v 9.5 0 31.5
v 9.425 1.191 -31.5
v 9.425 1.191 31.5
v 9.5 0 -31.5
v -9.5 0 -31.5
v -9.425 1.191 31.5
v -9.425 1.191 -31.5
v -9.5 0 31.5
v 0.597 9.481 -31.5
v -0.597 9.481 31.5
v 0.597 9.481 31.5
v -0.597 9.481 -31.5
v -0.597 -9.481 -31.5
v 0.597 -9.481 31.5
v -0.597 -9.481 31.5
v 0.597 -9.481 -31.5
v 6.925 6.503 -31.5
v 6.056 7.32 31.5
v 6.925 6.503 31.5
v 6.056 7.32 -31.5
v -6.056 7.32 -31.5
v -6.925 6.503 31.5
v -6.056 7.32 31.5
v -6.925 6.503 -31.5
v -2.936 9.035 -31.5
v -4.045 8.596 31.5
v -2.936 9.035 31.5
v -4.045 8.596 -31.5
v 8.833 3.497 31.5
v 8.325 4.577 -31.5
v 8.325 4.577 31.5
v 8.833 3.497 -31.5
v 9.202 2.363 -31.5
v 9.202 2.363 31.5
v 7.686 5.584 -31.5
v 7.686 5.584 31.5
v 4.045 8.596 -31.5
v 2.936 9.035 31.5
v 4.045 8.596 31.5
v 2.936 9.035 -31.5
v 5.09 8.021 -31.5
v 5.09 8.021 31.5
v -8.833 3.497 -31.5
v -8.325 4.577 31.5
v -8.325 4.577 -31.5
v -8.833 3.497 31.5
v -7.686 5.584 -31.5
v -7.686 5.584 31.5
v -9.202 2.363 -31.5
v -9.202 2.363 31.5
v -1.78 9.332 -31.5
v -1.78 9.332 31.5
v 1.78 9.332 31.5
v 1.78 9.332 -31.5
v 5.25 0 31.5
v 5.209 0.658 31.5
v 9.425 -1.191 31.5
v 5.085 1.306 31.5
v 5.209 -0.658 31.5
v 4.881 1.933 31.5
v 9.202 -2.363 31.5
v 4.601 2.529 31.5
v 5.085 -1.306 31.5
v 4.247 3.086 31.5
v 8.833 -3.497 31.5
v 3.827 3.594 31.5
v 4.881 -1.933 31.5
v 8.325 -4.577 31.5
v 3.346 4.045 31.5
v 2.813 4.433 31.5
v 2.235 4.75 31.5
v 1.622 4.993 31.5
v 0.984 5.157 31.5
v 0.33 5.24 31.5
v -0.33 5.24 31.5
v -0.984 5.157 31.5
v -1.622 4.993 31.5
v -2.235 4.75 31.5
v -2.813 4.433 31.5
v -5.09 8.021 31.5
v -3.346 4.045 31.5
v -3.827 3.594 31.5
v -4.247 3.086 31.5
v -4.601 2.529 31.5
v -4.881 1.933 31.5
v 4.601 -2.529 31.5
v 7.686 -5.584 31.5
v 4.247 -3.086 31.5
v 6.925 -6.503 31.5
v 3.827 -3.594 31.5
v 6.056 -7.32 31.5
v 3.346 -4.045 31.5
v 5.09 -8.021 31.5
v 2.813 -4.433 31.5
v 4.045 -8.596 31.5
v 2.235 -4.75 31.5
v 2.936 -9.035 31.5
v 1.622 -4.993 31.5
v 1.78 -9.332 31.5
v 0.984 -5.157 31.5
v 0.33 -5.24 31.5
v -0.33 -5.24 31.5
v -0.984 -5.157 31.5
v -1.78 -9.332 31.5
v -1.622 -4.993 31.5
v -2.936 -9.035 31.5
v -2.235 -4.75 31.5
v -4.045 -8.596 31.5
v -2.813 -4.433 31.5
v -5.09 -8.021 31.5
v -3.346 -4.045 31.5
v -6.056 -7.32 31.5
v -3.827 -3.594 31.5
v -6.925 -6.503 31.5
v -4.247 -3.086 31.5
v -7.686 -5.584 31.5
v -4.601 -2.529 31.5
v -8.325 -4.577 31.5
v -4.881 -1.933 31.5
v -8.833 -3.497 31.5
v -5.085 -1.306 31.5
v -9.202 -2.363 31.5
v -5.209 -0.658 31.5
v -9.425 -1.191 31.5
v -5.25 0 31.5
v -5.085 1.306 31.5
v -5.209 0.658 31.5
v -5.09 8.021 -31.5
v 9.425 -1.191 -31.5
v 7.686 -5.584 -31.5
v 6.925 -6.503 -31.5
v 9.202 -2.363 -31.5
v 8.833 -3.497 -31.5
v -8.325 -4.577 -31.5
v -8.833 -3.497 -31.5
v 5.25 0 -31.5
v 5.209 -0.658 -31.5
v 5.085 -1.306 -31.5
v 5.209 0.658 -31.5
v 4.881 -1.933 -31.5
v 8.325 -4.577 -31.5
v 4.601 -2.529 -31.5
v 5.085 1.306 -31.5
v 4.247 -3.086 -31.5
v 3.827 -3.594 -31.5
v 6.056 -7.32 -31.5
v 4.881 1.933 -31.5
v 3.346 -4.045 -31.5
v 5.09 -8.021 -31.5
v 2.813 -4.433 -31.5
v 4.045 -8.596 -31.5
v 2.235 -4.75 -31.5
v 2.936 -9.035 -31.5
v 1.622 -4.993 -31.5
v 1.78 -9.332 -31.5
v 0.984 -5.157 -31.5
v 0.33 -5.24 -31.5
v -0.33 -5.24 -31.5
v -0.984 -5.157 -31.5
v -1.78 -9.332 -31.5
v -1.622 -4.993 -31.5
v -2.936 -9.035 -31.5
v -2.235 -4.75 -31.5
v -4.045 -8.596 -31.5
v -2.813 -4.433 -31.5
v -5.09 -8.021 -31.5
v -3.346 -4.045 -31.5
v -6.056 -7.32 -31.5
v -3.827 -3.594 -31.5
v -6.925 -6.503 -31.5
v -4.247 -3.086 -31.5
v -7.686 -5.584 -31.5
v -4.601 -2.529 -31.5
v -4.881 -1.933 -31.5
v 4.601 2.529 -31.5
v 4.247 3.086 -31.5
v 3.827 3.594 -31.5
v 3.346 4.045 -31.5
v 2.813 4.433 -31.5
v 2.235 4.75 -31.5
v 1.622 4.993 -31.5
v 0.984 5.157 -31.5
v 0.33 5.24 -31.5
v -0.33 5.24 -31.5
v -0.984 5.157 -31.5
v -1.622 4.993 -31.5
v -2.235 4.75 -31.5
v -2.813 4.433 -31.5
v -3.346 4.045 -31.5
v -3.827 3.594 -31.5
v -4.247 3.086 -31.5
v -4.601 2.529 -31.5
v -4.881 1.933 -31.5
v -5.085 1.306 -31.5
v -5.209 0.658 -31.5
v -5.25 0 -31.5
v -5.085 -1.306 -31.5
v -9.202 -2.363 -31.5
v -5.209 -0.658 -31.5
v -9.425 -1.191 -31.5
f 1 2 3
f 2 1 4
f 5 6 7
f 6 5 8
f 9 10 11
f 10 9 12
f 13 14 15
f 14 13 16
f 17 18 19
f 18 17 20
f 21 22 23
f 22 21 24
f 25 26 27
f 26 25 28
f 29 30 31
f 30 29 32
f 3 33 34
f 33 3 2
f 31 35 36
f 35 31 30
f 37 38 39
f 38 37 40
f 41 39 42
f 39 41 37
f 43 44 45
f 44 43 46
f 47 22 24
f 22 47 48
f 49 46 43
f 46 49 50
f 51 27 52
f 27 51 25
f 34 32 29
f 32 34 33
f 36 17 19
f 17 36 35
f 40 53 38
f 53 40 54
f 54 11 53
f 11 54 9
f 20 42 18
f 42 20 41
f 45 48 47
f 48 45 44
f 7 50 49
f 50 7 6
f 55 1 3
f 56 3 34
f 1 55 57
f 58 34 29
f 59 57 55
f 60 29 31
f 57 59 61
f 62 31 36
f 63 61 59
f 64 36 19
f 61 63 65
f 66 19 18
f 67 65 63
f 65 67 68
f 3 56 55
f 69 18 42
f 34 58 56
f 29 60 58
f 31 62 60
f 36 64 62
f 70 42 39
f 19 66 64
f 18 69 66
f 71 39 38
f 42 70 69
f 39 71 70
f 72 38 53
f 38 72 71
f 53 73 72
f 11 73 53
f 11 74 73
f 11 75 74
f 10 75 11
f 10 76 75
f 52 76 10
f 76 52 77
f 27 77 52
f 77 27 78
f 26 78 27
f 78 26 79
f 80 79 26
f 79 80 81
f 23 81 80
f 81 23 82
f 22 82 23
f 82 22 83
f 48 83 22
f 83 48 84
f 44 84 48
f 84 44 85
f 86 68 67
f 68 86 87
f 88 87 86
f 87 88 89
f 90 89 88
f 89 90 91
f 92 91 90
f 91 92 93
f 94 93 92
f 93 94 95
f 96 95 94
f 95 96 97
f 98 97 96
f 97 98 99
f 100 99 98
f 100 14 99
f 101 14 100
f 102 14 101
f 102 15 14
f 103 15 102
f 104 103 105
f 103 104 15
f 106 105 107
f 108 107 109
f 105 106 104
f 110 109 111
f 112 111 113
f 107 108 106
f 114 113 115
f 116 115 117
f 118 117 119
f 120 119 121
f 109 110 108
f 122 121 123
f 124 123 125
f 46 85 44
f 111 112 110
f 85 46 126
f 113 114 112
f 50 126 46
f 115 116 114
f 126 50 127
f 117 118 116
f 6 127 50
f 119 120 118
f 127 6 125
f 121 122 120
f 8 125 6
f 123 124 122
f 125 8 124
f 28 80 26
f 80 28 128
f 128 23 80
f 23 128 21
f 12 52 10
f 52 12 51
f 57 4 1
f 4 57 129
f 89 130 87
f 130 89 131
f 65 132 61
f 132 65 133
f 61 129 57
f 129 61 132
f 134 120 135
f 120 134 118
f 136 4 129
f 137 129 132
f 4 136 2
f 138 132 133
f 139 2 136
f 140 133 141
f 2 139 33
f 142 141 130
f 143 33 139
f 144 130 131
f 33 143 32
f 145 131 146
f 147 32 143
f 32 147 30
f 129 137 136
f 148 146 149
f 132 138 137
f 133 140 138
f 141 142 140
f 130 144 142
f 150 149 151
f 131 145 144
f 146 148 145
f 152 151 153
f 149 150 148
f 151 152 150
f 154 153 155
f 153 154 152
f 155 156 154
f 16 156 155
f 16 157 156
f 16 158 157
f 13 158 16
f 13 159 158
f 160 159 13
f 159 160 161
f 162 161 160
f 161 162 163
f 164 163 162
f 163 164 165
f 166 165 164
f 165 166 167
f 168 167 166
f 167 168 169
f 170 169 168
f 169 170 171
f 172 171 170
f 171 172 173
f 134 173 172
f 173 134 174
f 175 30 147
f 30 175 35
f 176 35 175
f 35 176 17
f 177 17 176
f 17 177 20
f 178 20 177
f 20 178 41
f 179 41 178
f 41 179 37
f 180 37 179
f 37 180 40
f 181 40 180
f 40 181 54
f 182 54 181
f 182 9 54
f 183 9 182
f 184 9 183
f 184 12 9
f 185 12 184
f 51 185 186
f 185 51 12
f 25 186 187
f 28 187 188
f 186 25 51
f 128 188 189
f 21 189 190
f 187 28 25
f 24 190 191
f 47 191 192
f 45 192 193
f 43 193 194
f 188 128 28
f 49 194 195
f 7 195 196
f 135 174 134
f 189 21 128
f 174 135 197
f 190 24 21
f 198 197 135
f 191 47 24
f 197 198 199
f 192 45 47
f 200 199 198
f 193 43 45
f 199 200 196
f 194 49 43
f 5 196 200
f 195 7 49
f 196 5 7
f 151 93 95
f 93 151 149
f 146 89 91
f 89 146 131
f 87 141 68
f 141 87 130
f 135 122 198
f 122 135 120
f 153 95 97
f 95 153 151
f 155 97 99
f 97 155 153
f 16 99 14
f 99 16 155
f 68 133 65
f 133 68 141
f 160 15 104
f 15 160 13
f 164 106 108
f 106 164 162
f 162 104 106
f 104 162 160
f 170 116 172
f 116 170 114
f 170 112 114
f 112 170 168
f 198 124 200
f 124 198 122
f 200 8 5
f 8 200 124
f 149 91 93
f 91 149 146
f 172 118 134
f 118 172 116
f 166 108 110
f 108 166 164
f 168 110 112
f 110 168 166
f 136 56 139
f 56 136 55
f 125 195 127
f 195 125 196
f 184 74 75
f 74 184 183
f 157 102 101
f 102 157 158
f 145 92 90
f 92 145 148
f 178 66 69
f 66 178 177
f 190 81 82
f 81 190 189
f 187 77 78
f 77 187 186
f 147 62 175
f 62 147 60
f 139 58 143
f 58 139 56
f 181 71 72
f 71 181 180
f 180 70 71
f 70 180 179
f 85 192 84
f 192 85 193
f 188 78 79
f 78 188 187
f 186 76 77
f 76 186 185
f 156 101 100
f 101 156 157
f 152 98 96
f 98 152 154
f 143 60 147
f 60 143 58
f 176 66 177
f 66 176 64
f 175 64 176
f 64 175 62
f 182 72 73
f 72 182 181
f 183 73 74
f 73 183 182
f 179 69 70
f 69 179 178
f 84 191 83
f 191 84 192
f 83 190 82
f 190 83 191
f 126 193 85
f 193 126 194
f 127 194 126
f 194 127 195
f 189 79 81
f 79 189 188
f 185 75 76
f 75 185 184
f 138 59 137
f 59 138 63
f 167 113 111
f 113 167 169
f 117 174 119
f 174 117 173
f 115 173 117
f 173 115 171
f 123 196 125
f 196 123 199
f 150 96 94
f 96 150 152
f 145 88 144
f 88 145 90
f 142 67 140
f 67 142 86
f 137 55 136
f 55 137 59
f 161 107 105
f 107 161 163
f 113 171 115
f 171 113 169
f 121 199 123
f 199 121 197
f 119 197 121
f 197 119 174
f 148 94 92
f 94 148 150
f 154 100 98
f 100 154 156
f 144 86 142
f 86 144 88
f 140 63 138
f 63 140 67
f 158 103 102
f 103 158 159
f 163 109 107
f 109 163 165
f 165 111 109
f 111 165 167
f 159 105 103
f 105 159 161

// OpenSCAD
$fn = 50;


difference() {
	union() {
		translate(v = [0, 0, -31.5000000000]) {
			cylinder(h = 63, r = 9.5000000000);
		}
	}
	union() {
		translate(v = [0, 0, -100.0000000000]) {
			cylinder(h = 200, r = 5.2500000000);
		}
	}
}
